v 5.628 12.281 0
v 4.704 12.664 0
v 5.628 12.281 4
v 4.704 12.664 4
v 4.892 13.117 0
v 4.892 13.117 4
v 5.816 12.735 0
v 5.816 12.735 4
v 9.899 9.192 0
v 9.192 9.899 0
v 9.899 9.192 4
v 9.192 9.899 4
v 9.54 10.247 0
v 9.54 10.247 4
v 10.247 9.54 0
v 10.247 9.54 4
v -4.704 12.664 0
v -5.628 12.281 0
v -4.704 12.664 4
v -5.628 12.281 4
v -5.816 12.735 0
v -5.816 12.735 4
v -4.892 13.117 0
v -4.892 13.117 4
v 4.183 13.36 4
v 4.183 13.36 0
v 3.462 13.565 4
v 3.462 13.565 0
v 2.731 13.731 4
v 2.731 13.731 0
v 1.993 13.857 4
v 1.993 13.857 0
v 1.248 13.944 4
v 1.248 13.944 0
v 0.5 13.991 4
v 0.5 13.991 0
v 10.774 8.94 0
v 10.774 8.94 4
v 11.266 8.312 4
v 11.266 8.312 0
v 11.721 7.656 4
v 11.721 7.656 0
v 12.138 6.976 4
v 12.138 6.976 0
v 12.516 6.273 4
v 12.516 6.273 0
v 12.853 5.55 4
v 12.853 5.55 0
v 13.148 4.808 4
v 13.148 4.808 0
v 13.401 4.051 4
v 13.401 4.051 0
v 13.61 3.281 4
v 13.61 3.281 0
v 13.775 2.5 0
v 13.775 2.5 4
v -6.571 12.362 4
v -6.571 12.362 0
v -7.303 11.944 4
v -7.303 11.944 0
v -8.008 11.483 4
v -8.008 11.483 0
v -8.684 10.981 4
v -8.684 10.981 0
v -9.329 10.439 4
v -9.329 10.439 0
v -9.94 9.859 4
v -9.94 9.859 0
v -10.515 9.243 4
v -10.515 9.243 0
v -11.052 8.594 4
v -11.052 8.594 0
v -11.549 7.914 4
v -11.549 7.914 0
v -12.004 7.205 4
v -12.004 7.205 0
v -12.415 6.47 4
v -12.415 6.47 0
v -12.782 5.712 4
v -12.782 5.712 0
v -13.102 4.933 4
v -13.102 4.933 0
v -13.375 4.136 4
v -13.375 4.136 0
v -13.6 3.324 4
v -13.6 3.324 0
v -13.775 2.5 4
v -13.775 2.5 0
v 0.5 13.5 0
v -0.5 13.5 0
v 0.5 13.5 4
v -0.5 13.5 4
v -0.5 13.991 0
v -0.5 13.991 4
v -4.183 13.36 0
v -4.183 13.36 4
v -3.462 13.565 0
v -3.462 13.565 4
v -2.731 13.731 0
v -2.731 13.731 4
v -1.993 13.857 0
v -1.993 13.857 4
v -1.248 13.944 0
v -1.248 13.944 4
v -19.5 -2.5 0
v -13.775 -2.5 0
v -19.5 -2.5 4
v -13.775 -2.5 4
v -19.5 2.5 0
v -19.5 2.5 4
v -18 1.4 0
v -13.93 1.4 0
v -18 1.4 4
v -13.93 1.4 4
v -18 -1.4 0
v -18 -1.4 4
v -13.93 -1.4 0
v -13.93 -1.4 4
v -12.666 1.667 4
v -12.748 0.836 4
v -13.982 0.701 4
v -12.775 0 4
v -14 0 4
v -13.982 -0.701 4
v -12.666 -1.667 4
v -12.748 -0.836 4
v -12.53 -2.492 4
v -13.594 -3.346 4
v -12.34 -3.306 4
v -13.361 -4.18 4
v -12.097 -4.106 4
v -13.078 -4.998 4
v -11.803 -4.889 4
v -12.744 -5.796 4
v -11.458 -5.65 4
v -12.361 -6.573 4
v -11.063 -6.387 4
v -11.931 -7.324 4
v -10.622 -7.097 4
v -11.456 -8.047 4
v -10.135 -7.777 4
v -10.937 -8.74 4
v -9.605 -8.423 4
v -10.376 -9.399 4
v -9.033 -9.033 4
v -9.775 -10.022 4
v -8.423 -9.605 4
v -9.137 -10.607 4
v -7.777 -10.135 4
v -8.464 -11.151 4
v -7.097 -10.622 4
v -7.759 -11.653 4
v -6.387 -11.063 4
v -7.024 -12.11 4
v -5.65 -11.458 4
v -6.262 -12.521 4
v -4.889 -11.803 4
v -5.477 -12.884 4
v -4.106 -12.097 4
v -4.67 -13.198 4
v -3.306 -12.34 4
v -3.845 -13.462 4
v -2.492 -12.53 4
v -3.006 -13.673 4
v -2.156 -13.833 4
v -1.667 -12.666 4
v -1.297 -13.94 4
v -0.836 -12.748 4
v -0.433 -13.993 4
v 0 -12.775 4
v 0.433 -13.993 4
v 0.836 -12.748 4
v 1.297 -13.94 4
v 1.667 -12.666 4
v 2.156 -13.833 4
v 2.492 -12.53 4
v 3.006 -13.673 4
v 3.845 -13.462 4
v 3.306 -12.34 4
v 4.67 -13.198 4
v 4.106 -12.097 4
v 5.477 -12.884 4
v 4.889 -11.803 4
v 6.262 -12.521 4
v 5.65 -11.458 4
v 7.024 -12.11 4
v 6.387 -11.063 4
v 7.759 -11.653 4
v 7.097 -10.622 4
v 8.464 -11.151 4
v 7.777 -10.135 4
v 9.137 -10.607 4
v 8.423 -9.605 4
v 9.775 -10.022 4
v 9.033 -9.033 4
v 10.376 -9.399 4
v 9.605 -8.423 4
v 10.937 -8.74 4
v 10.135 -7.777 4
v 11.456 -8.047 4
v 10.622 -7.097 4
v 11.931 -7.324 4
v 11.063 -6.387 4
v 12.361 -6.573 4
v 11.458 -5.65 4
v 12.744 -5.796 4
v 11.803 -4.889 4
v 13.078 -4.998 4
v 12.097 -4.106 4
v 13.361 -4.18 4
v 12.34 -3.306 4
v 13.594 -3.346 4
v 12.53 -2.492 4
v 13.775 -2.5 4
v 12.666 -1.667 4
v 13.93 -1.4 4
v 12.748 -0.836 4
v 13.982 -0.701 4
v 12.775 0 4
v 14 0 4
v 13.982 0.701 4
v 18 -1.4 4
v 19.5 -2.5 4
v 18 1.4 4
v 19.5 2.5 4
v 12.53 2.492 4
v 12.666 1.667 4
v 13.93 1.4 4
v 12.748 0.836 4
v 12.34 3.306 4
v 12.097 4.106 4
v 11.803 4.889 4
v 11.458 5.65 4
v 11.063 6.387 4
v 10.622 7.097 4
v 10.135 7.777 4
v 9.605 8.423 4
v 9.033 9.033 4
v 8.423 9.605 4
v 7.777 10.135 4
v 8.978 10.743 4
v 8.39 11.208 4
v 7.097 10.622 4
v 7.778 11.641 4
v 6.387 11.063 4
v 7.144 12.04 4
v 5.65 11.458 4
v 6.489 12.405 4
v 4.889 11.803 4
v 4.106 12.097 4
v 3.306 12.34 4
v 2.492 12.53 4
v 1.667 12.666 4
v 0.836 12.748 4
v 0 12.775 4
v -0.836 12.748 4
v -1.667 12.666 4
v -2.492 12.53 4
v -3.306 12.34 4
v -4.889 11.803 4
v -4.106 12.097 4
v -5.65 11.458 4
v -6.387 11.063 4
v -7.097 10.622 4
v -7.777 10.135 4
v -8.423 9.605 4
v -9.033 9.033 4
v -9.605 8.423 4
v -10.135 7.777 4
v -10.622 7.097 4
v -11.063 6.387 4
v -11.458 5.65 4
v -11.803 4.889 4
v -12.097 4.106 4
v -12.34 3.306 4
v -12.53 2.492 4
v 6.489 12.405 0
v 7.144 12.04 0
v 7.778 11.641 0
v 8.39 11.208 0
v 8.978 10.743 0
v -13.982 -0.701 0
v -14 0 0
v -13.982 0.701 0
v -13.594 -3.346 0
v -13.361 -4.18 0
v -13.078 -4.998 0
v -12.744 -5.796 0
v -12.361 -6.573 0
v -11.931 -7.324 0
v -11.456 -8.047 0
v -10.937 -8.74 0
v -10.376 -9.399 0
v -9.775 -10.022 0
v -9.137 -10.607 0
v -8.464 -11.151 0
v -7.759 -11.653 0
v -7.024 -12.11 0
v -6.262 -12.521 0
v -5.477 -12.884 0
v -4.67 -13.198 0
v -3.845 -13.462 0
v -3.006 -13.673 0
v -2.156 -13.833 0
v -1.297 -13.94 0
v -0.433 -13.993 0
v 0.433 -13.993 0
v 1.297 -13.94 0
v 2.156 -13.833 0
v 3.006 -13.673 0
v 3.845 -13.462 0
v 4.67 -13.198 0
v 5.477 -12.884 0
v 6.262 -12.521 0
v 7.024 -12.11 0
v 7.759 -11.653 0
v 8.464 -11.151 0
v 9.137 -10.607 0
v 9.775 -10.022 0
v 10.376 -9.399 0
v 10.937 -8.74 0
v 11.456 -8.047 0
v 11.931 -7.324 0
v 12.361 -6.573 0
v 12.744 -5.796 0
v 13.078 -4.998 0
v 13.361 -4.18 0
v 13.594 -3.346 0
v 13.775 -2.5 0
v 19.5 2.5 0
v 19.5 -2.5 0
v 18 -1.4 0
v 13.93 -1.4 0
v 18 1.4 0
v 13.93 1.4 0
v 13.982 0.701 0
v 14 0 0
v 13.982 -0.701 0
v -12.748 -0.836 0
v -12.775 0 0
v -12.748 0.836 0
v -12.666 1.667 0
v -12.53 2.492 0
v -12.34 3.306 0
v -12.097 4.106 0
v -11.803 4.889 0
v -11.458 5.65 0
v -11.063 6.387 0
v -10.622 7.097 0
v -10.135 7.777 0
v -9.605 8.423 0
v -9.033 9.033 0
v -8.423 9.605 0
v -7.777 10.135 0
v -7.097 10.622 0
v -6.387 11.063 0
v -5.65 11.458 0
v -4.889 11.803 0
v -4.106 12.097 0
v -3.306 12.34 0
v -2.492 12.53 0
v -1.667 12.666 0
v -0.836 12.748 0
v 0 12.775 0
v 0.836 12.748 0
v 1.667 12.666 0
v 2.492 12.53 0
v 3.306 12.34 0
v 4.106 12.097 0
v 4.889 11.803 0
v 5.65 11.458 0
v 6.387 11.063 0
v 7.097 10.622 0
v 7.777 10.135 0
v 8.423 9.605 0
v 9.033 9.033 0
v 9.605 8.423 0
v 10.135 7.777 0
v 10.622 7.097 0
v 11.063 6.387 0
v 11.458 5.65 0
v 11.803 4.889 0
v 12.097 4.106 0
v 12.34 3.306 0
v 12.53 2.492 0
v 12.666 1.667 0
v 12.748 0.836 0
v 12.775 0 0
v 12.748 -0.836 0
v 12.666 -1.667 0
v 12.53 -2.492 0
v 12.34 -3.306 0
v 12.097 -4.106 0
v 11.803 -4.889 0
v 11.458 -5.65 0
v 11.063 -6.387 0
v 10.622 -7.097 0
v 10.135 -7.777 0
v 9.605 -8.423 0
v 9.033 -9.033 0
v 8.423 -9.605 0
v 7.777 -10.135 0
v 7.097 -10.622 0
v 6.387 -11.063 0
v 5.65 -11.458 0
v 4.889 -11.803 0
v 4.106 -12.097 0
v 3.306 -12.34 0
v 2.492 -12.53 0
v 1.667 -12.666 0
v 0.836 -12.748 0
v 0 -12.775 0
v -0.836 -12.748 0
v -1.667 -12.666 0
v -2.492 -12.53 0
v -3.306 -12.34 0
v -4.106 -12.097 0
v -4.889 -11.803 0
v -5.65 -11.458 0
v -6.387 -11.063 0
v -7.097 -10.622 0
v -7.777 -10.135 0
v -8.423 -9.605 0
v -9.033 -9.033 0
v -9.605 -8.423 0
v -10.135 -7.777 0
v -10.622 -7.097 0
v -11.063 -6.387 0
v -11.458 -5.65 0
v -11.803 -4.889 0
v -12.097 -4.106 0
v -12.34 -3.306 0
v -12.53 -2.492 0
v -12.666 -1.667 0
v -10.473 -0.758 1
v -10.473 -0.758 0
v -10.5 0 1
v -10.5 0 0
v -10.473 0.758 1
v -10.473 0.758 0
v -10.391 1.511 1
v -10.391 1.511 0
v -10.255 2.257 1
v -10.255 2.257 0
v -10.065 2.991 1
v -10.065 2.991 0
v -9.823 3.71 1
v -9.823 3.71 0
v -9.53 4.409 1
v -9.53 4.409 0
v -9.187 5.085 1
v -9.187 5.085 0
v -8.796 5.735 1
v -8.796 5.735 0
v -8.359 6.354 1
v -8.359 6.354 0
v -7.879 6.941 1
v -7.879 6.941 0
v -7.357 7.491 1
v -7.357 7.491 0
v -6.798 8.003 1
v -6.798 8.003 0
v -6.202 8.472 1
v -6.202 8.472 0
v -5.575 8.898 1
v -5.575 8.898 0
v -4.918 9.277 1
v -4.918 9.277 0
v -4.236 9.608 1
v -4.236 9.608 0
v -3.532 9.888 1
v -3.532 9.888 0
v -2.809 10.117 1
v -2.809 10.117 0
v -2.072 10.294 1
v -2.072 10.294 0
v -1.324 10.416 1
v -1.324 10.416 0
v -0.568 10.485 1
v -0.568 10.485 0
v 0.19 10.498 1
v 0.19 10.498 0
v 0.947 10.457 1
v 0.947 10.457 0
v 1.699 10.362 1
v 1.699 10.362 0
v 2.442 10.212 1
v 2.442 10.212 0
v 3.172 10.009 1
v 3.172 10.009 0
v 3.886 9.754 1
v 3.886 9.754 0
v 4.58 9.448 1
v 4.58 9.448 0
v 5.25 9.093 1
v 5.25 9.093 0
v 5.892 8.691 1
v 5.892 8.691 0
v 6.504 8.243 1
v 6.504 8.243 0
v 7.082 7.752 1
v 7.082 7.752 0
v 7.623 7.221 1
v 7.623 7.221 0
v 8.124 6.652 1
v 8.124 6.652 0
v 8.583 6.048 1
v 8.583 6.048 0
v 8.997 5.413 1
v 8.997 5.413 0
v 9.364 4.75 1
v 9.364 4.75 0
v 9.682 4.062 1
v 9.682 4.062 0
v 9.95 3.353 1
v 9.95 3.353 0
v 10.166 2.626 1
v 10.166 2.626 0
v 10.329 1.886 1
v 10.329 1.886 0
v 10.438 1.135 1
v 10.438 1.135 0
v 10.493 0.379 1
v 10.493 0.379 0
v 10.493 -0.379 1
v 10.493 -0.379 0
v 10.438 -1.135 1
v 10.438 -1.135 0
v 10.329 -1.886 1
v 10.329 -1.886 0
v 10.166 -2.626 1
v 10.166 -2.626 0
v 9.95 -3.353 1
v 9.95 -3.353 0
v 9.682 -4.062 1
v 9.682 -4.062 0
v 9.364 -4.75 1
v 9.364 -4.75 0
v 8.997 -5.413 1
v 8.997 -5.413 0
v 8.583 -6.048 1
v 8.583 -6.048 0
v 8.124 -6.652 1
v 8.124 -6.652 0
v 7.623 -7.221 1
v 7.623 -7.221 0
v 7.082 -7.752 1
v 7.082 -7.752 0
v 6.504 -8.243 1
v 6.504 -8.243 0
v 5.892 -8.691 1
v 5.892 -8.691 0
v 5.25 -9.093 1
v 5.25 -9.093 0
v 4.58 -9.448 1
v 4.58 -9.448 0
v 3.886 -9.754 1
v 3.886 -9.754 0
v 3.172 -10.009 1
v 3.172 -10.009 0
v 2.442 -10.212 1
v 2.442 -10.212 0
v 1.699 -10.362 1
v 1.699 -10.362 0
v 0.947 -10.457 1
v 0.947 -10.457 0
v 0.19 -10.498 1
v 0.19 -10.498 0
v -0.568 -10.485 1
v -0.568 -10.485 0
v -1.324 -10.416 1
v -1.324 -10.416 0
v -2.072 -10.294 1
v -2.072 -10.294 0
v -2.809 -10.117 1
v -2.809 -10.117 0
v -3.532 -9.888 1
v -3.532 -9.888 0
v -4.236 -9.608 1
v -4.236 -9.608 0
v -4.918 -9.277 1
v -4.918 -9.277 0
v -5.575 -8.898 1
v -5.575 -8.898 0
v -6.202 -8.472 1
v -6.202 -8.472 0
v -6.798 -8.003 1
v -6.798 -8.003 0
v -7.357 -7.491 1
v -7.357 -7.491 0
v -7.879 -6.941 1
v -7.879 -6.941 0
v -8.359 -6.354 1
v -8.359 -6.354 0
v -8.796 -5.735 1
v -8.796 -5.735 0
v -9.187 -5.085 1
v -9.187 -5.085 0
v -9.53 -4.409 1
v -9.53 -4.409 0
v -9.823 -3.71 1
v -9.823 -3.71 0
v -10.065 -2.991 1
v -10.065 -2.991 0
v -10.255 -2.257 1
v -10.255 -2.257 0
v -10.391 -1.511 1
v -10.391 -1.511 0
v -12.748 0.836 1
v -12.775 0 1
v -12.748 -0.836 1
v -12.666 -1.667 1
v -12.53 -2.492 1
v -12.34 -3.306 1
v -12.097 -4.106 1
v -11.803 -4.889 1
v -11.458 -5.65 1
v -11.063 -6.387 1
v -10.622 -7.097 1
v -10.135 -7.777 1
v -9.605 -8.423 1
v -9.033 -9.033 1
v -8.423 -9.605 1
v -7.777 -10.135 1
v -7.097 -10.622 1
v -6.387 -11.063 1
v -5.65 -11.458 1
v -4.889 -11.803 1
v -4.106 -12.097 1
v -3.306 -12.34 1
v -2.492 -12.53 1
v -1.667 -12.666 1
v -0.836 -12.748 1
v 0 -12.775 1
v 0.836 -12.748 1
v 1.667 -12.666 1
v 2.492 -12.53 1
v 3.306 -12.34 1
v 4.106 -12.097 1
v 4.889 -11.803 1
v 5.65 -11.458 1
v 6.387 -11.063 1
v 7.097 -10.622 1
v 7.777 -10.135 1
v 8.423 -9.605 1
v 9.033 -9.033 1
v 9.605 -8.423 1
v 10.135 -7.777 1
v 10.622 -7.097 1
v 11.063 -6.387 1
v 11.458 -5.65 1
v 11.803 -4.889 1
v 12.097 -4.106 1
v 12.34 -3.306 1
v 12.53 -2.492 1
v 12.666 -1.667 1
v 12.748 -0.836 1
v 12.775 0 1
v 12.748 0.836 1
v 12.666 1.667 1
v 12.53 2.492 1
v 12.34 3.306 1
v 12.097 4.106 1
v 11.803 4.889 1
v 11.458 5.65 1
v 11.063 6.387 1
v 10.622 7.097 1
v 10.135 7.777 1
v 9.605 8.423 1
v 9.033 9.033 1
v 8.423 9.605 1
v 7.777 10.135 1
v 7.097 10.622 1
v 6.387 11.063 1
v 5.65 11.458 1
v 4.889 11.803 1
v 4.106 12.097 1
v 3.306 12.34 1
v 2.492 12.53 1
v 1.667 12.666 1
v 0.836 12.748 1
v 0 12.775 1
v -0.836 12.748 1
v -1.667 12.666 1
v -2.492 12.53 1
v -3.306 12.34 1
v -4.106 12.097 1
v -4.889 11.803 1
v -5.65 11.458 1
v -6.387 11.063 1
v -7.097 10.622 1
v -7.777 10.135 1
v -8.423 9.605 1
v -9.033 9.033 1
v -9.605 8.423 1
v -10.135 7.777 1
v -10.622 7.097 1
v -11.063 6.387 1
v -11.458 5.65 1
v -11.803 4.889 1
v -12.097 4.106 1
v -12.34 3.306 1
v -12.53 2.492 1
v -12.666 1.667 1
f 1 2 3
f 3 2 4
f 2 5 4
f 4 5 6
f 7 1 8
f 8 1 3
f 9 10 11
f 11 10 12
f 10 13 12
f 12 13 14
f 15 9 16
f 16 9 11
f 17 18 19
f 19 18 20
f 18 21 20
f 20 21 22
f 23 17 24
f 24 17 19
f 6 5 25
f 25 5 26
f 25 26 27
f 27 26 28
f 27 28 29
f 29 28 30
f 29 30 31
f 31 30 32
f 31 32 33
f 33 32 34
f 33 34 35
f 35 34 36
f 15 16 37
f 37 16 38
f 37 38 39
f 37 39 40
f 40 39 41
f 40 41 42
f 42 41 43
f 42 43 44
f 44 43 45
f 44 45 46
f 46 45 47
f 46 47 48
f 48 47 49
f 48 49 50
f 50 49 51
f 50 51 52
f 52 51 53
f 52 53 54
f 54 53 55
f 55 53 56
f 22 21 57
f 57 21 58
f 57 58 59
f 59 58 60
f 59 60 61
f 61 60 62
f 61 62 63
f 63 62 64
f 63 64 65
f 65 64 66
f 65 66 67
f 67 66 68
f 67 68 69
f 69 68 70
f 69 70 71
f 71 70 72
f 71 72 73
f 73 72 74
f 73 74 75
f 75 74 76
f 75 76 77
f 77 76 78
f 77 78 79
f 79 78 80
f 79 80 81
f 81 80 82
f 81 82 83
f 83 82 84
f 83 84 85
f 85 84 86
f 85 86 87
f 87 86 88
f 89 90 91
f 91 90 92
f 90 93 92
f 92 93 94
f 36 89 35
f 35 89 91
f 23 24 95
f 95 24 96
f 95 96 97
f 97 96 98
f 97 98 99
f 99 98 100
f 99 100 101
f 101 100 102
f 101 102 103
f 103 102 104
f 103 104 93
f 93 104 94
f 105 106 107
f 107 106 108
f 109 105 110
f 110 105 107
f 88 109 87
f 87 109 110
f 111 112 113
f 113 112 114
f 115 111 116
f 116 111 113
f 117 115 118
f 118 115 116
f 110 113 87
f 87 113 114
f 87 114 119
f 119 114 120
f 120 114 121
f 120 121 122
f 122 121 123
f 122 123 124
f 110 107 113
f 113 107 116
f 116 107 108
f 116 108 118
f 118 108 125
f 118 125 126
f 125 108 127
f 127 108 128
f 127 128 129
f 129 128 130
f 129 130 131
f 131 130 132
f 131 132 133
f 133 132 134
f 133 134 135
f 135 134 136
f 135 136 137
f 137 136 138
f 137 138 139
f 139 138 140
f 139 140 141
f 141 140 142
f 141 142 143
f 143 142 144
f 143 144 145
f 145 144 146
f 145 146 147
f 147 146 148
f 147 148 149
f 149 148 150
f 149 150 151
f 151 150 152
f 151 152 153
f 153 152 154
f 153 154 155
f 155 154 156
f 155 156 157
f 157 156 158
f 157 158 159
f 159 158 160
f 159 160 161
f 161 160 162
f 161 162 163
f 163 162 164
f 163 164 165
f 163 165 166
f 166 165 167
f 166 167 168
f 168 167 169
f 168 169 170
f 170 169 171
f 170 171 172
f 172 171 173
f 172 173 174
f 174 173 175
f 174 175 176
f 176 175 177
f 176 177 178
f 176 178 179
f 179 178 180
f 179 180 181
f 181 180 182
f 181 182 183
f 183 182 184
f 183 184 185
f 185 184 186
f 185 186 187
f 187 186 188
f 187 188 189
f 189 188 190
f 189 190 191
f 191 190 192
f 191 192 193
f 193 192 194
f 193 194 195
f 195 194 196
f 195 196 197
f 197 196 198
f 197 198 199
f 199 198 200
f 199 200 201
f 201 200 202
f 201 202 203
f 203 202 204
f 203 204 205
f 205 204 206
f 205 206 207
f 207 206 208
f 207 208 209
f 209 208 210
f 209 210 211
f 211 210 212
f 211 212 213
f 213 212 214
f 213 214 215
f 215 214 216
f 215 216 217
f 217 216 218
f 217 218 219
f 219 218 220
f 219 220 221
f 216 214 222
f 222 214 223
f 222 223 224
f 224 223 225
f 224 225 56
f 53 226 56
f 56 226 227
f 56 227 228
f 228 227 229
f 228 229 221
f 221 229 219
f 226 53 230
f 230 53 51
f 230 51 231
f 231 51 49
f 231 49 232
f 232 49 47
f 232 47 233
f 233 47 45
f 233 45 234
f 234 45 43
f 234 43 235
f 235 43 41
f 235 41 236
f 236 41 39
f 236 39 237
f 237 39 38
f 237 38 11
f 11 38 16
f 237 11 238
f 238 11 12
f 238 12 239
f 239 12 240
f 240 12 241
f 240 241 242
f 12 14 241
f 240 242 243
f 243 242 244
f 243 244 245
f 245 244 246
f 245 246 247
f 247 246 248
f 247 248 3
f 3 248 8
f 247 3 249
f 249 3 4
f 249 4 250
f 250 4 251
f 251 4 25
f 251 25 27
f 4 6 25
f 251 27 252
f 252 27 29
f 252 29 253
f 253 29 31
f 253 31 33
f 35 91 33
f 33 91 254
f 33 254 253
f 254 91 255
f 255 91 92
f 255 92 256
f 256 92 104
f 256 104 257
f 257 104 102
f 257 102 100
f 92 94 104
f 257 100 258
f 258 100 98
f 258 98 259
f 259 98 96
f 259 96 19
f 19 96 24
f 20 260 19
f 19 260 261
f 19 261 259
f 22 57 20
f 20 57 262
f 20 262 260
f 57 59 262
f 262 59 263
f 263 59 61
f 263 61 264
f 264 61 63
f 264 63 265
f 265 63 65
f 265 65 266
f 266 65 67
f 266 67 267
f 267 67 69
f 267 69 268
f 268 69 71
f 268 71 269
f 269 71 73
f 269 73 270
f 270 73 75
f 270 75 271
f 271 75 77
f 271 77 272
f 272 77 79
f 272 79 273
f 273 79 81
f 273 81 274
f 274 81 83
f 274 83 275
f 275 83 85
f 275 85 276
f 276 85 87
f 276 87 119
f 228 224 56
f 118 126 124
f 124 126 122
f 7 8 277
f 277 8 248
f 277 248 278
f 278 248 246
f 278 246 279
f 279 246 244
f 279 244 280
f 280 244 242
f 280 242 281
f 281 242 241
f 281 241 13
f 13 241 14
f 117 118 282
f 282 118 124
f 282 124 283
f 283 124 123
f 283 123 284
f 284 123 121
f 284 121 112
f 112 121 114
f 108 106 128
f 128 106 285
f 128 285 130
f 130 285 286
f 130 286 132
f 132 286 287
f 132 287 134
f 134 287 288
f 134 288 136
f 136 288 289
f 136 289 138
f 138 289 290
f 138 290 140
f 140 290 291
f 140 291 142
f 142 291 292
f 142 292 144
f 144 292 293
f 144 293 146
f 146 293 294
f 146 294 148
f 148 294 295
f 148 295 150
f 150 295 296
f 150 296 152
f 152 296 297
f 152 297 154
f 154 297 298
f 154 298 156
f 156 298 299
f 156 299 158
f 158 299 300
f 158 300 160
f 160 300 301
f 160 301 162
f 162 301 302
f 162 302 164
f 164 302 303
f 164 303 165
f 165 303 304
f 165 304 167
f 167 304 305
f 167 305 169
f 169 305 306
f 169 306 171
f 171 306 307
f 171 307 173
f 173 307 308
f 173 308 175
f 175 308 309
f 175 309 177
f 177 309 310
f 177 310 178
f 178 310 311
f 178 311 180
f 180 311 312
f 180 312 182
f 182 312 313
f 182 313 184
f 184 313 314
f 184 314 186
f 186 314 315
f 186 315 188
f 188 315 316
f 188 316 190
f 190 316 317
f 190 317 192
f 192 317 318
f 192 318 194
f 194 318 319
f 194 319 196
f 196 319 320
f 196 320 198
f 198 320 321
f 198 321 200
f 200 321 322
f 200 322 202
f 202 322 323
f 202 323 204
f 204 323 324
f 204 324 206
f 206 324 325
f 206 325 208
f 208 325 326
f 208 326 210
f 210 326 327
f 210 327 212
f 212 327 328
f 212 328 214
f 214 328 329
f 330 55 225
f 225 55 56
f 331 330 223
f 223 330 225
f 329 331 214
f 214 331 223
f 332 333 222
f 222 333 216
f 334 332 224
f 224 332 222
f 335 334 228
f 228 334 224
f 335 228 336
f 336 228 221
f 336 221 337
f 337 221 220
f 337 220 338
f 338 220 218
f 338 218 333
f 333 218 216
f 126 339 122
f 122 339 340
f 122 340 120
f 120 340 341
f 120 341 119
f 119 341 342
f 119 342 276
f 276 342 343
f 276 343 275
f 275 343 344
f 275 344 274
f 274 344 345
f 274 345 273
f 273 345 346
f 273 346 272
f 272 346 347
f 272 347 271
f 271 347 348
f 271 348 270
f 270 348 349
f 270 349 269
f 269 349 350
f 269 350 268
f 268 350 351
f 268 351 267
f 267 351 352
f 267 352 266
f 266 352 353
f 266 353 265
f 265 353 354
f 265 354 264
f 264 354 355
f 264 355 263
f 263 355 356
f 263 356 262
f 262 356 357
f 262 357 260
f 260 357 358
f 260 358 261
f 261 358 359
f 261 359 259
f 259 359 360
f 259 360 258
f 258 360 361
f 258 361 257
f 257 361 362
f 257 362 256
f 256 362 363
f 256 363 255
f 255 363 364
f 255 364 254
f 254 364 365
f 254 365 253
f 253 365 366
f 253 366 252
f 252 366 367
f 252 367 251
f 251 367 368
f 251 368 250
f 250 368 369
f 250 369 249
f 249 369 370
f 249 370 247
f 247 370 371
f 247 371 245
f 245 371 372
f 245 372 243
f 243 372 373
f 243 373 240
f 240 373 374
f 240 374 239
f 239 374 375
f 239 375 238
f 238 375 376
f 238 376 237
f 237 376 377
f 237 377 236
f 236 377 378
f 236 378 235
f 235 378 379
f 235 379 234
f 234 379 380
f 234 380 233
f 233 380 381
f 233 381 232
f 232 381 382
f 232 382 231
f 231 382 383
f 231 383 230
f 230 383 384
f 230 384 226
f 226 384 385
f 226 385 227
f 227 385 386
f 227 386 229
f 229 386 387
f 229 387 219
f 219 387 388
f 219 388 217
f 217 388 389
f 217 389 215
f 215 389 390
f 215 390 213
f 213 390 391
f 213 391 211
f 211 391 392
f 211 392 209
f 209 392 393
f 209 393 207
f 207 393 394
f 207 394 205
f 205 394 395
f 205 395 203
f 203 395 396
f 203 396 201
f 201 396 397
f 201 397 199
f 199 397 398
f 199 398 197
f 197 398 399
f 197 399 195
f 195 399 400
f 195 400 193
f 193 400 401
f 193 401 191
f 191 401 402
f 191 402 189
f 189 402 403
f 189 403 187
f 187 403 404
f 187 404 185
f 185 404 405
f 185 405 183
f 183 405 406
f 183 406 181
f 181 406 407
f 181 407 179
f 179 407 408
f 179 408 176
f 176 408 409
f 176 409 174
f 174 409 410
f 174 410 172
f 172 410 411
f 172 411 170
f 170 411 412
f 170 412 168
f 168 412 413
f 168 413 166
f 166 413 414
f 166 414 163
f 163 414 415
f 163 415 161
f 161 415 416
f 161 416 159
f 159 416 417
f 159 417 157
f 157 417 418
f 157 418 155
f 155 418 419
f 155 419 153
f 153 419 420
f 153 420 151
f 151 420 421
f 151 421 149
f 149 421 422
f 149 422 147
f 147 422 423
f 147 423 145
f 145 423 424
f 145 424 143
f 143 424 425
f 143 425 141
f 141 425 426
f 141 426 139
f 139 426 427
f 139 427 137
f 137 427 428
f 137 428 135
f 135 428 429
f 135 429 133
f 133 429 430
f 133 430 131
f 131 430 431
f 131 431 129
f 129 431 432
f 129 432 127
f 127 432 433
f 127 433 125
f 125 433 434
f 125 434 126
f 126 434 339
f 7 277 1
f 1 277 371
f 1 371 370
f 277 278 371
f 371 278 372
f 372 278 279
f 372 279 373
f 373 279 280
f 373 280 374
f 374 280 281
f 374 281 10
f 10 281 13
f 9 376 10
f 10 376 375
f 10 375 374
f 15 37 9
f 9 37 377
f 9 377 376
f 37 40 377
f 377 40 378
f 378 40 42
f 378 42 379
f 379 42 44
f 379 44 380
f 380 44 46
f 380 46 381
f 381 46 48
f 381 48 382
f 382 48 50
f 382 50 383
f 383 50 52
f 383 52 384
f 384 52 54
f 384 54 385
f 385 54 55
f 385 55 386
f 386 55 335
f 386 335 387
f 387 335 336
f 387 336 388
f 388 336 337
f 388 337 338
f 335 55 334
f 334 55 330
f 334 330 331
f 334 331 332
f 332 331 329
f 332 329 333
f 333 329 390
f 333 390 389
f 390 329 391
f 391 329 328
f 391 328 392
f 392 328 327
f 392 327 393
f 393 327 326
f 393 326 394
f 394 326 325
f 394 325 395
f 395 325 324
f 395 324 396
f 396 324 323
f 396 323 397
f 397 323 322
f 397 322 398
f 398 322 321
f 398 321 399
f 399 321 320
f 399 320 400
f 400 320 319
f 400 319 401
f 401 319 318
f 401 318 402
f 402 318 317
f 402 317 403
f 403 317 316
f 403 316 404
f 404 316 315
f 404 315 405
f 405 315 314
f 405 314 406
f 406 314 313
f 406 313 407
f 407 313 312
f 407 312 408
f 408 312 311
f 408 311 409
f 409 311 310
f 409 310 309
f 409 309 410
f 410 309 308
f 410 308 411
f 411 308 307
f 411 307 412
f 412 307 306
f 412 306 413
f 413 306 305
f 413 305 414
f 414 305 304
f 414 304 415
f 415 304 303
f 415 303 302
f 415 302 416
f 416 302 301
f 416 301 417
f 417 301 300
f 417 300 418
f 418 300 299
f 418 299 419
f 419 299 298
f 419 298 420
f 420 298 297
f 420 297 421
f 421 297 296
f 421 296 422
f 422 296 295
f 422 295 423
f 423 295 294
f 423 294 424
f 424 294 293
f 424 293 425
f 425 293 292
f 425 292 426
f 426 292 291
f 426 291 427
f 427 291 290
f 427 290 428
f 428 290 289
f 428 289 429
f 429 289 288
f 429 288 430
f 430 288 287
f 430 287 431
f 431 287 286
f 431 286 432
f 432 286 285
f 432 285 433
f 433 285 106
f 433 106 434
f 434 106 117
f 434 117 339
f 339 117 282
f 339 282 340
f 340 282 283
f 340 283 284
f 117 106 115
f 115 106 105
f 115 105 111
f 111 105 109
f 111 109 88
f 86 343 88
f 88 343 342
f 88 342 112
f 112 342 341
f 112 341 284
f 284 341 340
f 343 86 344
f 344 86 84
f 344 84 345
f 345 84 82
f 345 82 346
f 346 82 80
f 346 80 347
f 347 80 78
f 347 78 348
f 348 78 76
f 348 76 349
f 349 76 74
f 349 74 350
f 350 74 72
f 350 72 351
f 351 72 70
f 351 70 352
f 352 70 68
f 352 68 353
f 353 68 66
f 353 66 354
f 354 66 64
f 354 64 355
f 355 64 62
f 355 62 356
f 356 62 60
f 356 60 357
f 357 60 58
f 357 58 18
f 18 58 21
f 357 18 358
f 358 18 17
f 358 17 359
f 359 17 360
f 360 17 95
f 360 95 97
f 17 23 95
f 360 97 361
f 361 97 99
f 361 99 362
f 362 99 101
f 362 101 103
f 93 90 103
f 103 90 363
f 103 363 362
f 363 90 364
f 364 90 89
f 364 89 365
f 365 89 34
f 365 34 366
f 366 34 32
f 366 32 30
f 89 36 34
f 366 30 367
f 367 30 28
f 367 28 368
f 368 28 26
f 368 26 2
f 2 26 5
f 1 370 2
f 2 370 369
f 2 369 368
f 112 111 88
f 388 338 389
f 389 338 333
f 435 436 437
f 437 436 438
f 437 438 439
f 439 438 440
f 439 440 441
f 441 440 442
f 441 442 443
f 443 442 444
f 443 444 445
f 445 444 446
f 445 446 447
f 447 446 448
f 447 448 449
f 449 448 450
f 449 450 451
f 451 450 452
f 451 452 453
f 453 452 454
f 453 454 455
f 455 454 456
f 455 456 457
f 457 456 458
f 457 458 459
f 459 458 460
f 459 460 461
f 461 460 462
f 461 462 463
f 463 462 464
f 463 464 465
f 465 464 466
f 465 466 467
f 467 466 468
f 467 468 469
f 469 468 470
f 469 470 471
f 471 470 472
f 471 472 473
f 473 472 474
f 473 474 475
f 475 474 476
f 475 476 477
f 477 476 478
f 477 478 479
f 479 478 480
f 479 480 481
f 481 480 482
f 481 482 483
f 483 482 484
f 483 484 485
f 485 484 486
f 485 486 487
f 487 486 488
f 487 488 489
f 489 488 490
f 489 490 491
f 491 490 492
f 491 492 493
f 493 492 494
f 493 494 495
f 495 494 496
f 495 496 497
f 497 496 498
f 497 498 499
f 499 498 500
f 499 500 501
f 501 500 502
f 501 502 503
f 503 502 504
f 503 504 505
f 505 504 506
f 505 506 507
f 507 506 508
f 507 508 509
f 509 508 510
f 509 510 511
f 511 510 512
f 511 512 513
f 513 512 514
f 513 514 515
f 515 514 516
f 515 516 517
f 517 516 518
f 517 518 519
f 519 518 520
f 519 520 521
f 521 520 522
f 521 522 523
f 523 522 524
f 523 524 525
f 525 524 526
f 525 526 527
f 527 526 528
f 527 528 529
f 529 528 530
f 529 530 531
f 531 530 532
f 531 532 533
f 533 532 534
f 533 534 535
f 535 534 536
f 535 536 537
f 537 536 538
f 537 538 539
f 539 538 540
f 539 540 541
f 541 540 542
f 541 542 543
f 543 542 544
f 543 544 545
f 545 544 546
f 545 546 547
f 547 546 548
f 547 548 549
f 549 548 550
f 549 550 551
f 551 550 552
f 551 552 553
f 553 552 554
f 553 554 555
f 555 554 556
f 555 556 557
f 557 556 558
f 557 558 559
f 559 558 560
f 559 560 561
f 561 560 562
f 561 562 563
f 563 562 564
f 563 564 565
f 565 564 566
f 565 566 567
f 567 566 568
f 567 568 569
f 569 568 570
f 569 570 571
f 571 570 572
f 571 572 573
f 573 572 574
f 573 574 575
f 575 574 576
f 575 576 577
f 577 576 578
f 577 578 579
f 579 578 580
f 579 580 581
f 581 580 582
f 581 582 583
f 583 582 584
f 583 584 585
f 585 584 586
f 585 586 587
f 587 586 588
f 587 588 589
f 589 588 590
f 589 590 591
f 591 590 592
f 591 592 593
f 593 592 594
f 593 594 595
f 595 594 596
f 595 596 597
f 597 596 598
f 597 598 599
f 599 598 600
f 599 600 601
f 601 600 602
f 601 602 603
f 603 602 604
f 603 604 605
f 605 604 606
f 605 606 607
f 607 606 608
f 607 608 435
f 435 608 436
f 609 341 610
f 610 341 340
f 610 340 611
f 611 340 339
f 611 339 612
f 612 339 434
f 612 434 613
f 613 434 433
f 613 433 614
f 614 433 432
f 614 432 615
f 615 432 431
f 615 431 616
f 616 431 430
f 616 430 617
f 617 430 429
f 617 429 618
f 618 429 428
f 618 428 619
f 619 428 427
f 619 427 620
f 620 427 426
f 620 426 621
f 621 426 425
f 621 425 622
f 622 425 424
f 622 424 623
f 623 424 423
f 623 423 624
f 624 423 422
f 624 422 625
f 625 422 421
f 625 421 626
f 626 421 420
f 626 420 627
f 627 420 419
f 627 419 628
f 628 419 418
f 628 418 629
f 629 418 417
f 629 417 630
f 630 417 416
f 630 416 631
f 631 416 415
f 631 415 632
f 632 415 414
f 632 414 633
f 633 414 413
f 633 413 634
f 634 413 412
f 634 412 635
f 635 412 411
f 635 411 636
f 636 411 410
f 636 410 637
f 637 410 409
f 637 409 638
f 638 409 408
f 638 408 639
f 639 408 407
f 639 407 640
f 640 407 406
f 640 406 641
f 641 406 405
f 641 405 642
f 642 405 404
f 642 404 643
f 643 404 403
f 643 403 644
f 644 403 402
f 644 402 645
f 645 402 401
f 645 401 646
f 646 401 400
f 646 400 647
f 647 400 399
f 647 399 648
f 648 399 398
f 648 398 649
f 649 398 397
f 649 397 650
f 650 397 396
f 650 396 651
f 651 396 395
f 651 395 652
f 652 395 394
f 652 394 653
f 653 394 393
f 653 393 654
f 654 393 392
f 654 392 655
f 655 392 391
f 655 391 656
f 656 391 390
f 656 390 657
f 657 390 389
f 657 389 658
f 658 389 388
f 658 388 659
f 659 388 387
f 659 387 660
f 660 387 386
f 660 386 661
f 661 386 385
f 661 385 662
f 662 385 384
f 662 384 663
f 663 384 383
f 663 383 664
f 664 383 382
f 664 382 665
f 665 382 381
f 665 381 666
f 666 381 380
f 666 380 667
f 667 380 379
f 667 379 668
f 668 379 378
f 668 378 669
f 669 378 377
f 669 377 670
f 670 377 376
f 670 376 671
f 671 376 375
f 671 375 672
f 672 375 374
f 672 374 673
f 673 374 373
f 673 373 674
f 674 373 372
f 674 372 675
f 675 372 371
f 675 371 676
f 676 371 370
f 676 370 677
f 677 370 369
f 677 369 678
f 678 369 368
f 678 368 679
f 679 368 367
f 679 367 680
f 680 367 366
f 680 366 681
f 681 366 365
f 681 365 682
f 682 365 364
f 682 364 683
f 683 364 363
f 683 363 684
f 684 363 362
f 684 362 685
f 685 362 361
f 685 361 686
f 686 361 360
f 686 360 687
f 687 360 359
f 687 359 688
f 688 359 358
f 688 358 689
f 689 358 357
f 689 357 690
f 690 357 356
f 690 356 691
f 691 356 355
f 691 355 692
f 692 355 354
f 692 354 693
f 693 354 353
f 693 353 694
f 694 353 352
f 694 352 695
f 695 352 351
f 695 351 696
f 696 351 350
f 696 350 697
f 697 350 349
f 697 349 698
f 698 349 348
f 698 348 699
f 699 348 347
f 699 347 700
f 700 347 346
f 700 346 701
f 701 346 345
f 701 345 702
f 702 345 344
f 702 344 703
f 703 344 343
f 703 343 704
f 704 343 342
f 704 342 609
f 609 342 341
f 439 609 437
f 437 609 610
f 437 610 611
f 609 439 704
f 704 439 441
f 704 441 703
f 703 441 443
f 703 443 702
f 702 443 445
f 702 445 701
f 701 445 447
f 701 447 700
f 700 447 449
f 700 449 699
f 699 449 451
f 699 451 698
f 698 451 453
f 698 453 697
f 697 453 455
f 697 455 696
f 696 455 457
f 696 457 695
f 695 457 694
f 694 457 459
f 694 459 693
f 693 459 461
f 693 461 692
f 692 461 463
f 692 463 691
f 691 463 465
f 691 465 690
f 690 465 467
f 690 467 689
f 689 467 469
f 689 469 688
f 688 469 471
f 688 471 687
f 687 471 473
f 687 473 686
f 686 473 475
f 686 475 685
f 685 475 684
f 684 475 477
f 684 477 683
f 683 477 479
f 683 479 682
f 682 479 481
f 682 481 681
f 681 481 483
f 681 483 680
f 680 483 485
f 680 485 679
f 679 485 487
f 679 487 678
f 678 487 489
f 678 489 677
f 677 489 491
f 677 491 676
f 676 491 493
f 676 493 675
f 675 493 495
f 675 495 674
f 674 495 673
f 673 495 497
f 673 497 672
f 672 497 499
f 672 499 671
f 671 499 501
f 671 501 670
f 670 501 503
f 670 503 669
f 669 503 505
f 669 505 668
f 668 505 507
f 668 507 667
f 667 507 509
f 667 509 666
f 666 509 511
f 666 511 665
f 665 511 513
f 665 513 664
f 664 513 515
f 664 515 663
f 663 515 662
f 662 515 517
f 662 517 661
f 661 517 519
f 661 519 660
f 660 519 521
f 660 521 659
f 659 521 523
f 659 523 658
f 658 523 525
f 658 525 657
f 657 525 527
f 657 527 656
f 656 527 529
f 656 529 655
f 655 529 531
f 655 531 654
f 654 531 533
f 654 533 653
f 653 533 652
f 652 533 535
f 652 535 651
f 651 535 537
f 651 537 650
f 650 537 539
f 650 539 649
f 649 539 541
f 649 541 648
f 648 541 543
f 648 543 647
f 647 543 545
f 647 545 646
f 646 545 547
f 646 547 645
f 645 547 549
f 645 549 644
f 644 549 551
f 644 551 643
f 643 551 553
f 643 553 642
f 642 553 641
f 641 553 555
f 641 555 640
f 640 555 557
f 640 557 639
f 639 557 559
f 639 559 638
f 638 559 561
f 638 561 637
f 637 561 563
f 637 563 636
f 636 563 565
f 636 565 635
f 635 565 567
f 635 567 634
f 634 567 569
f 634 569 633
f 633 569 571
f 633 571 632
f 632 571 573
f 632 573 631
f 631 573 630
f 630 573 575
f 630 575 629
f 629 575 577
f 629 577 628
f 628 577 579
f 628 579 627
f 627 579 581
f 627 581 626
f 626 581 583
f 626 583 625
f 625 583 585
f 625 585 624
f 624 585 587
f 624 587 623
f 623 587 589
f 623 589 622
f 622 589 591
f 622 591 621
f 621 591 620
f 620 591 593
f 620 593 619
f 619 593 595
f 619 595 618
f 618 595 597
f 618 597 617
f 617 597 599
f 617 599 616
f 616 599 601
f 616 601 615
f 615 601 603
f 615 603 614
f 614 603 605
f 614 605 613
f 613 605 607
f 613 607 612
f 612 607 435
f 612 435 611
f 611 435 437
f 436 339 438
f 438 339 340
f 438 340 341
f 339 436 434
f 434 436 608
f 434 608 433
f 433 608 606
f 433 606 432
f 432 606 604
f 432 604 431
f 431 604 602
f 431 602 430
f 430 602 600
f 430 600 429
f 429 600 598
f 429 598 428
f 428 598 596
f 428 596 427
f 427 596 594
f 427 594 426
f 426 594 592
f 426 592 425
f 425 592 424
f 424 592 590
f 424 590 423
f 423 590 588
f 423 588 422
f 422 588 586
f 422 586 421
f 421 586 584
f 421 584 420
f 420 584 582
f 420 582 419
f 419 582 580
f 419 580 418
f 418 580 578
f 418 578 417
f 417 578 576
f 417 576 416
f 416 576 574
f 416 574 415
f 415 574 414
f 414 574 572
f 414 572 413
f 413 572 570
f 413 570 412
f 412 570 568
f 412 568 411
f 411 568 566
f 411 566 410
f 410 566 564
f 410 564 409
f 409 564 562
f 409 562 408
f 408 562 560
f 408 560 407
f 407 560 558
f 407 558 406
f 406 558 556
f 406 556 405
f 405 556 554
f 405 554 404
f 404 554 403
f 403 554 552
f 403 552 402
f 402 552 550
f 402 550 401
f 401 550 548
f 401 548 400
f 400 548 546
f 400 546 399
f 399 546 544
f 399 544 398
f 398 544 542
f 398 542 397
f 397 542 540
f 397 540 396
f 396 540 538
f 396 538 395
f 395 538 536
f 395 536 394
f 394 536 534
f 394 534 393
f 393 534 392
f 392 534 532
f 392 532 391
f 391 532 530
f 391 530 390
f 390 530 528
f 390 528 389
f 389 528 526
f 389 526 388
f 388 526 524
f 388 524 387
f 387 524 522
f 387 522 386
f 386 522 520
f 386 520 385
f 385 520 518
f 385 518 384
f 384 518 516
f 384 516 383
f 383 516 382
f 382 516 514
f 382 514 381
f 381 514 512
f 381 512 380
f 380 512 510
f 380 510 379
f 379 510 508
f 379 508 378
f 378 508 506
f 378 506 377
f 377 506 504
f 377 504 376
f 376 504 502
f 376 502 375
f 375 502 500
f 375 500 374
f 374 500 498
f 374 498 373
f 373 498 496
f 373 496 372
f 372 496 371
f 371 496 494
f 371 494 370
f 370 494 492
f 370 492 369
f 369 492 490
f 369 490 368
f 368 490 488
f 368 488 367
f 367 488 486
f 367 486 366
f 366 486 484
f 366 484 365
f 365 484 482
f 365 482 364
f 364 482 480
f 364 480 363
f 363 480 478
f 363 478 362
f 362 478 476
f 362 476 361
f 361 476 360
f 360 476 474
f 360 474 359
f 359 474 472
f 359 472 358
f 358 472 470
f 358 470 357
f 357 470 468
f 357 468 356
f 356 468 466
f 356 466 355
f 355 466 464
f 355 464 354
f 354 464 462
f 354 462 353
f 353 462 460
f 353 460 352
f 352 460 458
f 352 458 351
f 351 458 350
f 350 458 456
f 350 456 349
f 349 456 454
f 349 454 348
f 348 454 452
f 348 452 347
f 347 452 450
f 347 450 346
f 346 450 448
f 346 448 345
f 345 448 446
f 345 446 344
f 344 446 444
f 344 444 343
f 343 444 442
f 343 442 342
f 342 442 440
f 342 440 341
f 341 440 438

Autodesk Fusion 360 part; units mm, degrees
sketch "Sketch1" plane through (0, 0, 0) normal (0, 0, 1) x (1, 0, 0)
  circle A0 centre (0, 0) radius 12.775
  circle A1 centre (0, 0) radius 14
  circle A2 centre (0, 0) radius 10.5
  line L0 (19.5, 2.5) -> (-19.5, 2.5)
  line L1 (-19.5, 2.5) -> (-19.5, -2.5)
  line L2 (-19.5, -2.5) -> (19.5, -2.5)
  line L3 (19.5, -2.5) -> (19.5, 2.5)
  line L4 (19.5, 2.5) -> (-19.5, -2.5) construction
  line L5 (-19.5, 2.5) -> (19.5, -2.5) construction
  line L6 (18, -1.4) -> (-18, -1.4)
  line L7 (-18, -1.4) -> (-18, 1.4)
  line L8 (-18, 1.4) -> (18, 1.4)
  line L9 (18, 1.4) -> (18, -1.4)
  line L10 (18, -1.4) -> (-18, 1.4) construction
  line L11 (-18, -1.4) -> (18, 1.4) construction
  line L12 (0.5, 13.5) -> (-0.5, 13.5)
  line L13 (-0.5, 13.5) -> (-0.5, 14.5)
  line L14 (-0.5, 14.5) -> (0.5, 14.5)
  line L15 (0.5, 14.5) -> (0.5, 13.5)
  line L16 (0.5, 13.5) -> (-0.5, 14.5) construction
  line L17 (-0.5, 13.5) -> (0.5, 14.5) construction
  line L18 (-4.7043, 12.6637) -> (-5.6282, 12.281)
  line L19 (-5.6282, 12.281) -> (-6.0108, 13.2049)
  line L20 (-6.0108, 13.2049) -> (-5.087, 13.5876)
  line L21 (-5.087, 13.5876) -> (-4.7043, 12.6637)
  line L22 (-9.1924, 9.8995) -> (-9.8995, 9.1924)
  line L23 (-9.8995, 9.1924) -> (-10.6066, 9.8995)
  line L24 (-10.6066, 9.8995) -> (-9.8995, 10.6066)
  line L25 (-9.8995, 10.6066) -> (-9.1924, 9.8995)
  line L26 (-12.281, 5.6282) -> (-12.6637, 4.7043)
  line L27 (-12.6637, 4.7043) -> (-13.5876, 5.087)
  line L28 (-13.5876, 5.087) -> (-13.2049, 6.0108)
  line L29 (-13.2049, 6.0108) -> (-12.281, 5.6282)
  line L30 (-13.5, 0.5) -> (-13.5, -0.5)
  line L31 (-13.5, -0.5) -> (-14.5, -0.5)
  line L32 (-14.5, -0.5) -> (-14.5, 0.5)
  line L33 (-14.5, 0.5) -> (-13.5, 0.5)
  line L34 (-12.6637, -4.7043) -> (-12.281, -5.6282)
  line L35 (-12.281, -5.6282) -> (-13.2049, -6.0108)
  line L36 (-13.2049, -6.0108) -> (-13.5876, -5.087)
  line L37 (-13.5876, -5.087) -> (-12.6637, -4.7043)
  line L38 (-9.8995, -9.1924) -> (-9.1924, -9.8995)
  line L39 (-9.1924, -9.8995) -> (-9.8995, -10.6066)
  line L40 (-9.8995, -10.6066) -> (-10.6066, -9.8995)
  line L41 (-10.6066, -9.8995) -> (-9.8995, -9.1924)
  line L42 (-5.6282, -12.281) -> (-4.7043, -12.6637)
  line L43 (-4.7043, -12.6637) -> (-5.087, -13.5876)
  line L44 (-5.087, -13.5876) -> (-6.0108, -13.2049)
  line L45 (-6.0108, -13.2049) -> (-5.6282, -12.281)
  line L46 (-0.5, -13.5) -> (0.5, -13.5)
  line L47 (0.5, -13.5) -> (0.5, -14.5)
  line L48 (0.5, -14.5) -> (-0.5, -14.5)
  line L49 (-0.5, -14.5) -> (-0.5, -13.5)
  line L50 (4.7043, -12.6637) -> (5.6282, -12.281)
  line L51 (5.6282, -12.281) -> (6.0108, -13.2049)
  line L52 (6.0108, -13.2049) -> (5.087, -13.5876)
  line L53 (5.087, -13.5876) -> (4.7043, -12.6637)
  line L54 (9.1924, -9.8995) -> (9.8995, -9.1924)
  line L55 (9.8995, -9.1924) -> (10.6066, -9.8995)
  line L56 (10.6066, -9.8995) -> (9.8995, -10.6066)
  line L57 (9.8995, -10.6066) -> (9.1924, -9.8995)
  line L58 (12.281, -5.6282) -> (12.6637, -4.7043)
  line L59 (12.6637, -4.7043) -> (13.5876, -5.087)
  line L60 (13.5876, -5.087) -> (13.2049, -6.0108)
  line L61 (13.2049, -6.0108) -> (12.281, -5.6282)
  line L62 (13.5, -0.5) -> (13.5, 0.5)
  line L63 (13.5, 0.5) -> (14.5, 0.5)
  line L64 (14.5, 0.5) -> (14.5, -0.5)
  line L65 (14.5, -0.5) -> (13.5, -0.5)
  line L66 (12.6637, 4.7043) -> (12.281, 5.6282)
  line L67 (12.281, 5.6282) -> (13.2049, 6.0108)
  line L68 (13.2049, 6.0108) -> (13.5876, 5.087)
  line L69 (13.5876, 5.087) -> (12.6637, 4.7043)
  line L70 (9.8995, 9.1924) -> (9.1924, 9.8995)
  line L71 (9.1924, 9.8995) -> (9.8995, 10.6066)
  line L72 (9.8995, 10.6066) -> (10.6066, 9.8995)
  line L73 (10.6066, 9.8995) -> (9.8995, 9.1924)
  line L74 (5.6282, 12.281) -> (4.7043, 12.6637)
  line L75 (4.7043, 12.6637) -> (5.087, 13.5876)
  line L76 (5.087, 13.5876) -> (6.0108, 13.2049)
  line L77 (6.0108, 13.2049) -> (5.6282, 12.281)
  point P0 (0, 14)
  dimension "d3" = 25.55
  dimension "d4" = 28
  dimension "d5" = 21
  dimension "d10" = 39
  dimension "d11" = 5
  dimension "d12" = 36
  dimension "d13" = 2.8
  dimension "d16" = 1
  dimension "d17" = 1
  dimension "d21" = 360
extrude "Extrude2" add sketch "Sketch1" along normal blind 2 contours A0 A1 L6 L8 L62 L63 L65 | A0 A1 L0 L8 | A0 A1 L2 L6 | A0 A1 L0 L12 L13 L15 L18 L19 L21 L22 L23 L25 L26 L27 L29 L66 L67 L69 L70 L71 L73 L74 L75 L77 | A0 A1 L2 L34 L35 L37 L38 L39 L41 L42 L43 L45 L46 L47 L49 L50 L51 L53 L54 L55 L57 L58 L59 L61 | A0 A1 L0 L8 | A1 L62 L63 L65 | A0 A1 L2 L6 | A0 A1 L6 L8 L30 L31 L33 | A1 L66 L67 L69 | A1 L58 L59 L61 | A1 L26 L27 L29 | A1 L34 L35 L37 | A1 L30 L31 L33 | A1 L70 L71 L73 | A1 L54 L55 L57 | A1 L22 L23 L25 | A1 L38 L39 L41 | A1 L74 L75 L77 | A1 L50 L51 L53 | A1 L18 L19 L21 | A1 L42 L43 L45 | A1 L12 L13 L15 | A1 L46 L47 L49 makes body 1
extrude "Extrude1" add sketch "Sketch1" along normal blind 1 separate body contours A0 A2 L6 L8 | A0 A2 L0 L8 | A0 A2 L2 L6 | A0 A2 L0 | A0 A2 L2 | A0 A2 L0 L8 | A0 A2 L6 L8 | A0 A2 L2 L6 makes body 2
extrude "Extrude3" add sketch "Sketch1" along normal blind 4 contours A1 L0 L2 L3 L6 L8 L9 | A1 L0 L1 L2 L6 L7 L8 bodies 1
extrude "Extrude4" cut sketch "Sketch1" along normal blind 4.762 contours A1 L12 L13 L15 bodies 1
extrude "Extrude5" cut sketch "Sketch1" along normal blind 6.934 contours A1 L70 L71 L73 | A1 L74 L75 L77 | A1 L18 L19 L21 bodies 1
extrude "Extrude6" add 1 faces at (-1.93, 13.0172, 2) along direction (0, 0, 1) blind 2 on bodies 1 bodies 1
